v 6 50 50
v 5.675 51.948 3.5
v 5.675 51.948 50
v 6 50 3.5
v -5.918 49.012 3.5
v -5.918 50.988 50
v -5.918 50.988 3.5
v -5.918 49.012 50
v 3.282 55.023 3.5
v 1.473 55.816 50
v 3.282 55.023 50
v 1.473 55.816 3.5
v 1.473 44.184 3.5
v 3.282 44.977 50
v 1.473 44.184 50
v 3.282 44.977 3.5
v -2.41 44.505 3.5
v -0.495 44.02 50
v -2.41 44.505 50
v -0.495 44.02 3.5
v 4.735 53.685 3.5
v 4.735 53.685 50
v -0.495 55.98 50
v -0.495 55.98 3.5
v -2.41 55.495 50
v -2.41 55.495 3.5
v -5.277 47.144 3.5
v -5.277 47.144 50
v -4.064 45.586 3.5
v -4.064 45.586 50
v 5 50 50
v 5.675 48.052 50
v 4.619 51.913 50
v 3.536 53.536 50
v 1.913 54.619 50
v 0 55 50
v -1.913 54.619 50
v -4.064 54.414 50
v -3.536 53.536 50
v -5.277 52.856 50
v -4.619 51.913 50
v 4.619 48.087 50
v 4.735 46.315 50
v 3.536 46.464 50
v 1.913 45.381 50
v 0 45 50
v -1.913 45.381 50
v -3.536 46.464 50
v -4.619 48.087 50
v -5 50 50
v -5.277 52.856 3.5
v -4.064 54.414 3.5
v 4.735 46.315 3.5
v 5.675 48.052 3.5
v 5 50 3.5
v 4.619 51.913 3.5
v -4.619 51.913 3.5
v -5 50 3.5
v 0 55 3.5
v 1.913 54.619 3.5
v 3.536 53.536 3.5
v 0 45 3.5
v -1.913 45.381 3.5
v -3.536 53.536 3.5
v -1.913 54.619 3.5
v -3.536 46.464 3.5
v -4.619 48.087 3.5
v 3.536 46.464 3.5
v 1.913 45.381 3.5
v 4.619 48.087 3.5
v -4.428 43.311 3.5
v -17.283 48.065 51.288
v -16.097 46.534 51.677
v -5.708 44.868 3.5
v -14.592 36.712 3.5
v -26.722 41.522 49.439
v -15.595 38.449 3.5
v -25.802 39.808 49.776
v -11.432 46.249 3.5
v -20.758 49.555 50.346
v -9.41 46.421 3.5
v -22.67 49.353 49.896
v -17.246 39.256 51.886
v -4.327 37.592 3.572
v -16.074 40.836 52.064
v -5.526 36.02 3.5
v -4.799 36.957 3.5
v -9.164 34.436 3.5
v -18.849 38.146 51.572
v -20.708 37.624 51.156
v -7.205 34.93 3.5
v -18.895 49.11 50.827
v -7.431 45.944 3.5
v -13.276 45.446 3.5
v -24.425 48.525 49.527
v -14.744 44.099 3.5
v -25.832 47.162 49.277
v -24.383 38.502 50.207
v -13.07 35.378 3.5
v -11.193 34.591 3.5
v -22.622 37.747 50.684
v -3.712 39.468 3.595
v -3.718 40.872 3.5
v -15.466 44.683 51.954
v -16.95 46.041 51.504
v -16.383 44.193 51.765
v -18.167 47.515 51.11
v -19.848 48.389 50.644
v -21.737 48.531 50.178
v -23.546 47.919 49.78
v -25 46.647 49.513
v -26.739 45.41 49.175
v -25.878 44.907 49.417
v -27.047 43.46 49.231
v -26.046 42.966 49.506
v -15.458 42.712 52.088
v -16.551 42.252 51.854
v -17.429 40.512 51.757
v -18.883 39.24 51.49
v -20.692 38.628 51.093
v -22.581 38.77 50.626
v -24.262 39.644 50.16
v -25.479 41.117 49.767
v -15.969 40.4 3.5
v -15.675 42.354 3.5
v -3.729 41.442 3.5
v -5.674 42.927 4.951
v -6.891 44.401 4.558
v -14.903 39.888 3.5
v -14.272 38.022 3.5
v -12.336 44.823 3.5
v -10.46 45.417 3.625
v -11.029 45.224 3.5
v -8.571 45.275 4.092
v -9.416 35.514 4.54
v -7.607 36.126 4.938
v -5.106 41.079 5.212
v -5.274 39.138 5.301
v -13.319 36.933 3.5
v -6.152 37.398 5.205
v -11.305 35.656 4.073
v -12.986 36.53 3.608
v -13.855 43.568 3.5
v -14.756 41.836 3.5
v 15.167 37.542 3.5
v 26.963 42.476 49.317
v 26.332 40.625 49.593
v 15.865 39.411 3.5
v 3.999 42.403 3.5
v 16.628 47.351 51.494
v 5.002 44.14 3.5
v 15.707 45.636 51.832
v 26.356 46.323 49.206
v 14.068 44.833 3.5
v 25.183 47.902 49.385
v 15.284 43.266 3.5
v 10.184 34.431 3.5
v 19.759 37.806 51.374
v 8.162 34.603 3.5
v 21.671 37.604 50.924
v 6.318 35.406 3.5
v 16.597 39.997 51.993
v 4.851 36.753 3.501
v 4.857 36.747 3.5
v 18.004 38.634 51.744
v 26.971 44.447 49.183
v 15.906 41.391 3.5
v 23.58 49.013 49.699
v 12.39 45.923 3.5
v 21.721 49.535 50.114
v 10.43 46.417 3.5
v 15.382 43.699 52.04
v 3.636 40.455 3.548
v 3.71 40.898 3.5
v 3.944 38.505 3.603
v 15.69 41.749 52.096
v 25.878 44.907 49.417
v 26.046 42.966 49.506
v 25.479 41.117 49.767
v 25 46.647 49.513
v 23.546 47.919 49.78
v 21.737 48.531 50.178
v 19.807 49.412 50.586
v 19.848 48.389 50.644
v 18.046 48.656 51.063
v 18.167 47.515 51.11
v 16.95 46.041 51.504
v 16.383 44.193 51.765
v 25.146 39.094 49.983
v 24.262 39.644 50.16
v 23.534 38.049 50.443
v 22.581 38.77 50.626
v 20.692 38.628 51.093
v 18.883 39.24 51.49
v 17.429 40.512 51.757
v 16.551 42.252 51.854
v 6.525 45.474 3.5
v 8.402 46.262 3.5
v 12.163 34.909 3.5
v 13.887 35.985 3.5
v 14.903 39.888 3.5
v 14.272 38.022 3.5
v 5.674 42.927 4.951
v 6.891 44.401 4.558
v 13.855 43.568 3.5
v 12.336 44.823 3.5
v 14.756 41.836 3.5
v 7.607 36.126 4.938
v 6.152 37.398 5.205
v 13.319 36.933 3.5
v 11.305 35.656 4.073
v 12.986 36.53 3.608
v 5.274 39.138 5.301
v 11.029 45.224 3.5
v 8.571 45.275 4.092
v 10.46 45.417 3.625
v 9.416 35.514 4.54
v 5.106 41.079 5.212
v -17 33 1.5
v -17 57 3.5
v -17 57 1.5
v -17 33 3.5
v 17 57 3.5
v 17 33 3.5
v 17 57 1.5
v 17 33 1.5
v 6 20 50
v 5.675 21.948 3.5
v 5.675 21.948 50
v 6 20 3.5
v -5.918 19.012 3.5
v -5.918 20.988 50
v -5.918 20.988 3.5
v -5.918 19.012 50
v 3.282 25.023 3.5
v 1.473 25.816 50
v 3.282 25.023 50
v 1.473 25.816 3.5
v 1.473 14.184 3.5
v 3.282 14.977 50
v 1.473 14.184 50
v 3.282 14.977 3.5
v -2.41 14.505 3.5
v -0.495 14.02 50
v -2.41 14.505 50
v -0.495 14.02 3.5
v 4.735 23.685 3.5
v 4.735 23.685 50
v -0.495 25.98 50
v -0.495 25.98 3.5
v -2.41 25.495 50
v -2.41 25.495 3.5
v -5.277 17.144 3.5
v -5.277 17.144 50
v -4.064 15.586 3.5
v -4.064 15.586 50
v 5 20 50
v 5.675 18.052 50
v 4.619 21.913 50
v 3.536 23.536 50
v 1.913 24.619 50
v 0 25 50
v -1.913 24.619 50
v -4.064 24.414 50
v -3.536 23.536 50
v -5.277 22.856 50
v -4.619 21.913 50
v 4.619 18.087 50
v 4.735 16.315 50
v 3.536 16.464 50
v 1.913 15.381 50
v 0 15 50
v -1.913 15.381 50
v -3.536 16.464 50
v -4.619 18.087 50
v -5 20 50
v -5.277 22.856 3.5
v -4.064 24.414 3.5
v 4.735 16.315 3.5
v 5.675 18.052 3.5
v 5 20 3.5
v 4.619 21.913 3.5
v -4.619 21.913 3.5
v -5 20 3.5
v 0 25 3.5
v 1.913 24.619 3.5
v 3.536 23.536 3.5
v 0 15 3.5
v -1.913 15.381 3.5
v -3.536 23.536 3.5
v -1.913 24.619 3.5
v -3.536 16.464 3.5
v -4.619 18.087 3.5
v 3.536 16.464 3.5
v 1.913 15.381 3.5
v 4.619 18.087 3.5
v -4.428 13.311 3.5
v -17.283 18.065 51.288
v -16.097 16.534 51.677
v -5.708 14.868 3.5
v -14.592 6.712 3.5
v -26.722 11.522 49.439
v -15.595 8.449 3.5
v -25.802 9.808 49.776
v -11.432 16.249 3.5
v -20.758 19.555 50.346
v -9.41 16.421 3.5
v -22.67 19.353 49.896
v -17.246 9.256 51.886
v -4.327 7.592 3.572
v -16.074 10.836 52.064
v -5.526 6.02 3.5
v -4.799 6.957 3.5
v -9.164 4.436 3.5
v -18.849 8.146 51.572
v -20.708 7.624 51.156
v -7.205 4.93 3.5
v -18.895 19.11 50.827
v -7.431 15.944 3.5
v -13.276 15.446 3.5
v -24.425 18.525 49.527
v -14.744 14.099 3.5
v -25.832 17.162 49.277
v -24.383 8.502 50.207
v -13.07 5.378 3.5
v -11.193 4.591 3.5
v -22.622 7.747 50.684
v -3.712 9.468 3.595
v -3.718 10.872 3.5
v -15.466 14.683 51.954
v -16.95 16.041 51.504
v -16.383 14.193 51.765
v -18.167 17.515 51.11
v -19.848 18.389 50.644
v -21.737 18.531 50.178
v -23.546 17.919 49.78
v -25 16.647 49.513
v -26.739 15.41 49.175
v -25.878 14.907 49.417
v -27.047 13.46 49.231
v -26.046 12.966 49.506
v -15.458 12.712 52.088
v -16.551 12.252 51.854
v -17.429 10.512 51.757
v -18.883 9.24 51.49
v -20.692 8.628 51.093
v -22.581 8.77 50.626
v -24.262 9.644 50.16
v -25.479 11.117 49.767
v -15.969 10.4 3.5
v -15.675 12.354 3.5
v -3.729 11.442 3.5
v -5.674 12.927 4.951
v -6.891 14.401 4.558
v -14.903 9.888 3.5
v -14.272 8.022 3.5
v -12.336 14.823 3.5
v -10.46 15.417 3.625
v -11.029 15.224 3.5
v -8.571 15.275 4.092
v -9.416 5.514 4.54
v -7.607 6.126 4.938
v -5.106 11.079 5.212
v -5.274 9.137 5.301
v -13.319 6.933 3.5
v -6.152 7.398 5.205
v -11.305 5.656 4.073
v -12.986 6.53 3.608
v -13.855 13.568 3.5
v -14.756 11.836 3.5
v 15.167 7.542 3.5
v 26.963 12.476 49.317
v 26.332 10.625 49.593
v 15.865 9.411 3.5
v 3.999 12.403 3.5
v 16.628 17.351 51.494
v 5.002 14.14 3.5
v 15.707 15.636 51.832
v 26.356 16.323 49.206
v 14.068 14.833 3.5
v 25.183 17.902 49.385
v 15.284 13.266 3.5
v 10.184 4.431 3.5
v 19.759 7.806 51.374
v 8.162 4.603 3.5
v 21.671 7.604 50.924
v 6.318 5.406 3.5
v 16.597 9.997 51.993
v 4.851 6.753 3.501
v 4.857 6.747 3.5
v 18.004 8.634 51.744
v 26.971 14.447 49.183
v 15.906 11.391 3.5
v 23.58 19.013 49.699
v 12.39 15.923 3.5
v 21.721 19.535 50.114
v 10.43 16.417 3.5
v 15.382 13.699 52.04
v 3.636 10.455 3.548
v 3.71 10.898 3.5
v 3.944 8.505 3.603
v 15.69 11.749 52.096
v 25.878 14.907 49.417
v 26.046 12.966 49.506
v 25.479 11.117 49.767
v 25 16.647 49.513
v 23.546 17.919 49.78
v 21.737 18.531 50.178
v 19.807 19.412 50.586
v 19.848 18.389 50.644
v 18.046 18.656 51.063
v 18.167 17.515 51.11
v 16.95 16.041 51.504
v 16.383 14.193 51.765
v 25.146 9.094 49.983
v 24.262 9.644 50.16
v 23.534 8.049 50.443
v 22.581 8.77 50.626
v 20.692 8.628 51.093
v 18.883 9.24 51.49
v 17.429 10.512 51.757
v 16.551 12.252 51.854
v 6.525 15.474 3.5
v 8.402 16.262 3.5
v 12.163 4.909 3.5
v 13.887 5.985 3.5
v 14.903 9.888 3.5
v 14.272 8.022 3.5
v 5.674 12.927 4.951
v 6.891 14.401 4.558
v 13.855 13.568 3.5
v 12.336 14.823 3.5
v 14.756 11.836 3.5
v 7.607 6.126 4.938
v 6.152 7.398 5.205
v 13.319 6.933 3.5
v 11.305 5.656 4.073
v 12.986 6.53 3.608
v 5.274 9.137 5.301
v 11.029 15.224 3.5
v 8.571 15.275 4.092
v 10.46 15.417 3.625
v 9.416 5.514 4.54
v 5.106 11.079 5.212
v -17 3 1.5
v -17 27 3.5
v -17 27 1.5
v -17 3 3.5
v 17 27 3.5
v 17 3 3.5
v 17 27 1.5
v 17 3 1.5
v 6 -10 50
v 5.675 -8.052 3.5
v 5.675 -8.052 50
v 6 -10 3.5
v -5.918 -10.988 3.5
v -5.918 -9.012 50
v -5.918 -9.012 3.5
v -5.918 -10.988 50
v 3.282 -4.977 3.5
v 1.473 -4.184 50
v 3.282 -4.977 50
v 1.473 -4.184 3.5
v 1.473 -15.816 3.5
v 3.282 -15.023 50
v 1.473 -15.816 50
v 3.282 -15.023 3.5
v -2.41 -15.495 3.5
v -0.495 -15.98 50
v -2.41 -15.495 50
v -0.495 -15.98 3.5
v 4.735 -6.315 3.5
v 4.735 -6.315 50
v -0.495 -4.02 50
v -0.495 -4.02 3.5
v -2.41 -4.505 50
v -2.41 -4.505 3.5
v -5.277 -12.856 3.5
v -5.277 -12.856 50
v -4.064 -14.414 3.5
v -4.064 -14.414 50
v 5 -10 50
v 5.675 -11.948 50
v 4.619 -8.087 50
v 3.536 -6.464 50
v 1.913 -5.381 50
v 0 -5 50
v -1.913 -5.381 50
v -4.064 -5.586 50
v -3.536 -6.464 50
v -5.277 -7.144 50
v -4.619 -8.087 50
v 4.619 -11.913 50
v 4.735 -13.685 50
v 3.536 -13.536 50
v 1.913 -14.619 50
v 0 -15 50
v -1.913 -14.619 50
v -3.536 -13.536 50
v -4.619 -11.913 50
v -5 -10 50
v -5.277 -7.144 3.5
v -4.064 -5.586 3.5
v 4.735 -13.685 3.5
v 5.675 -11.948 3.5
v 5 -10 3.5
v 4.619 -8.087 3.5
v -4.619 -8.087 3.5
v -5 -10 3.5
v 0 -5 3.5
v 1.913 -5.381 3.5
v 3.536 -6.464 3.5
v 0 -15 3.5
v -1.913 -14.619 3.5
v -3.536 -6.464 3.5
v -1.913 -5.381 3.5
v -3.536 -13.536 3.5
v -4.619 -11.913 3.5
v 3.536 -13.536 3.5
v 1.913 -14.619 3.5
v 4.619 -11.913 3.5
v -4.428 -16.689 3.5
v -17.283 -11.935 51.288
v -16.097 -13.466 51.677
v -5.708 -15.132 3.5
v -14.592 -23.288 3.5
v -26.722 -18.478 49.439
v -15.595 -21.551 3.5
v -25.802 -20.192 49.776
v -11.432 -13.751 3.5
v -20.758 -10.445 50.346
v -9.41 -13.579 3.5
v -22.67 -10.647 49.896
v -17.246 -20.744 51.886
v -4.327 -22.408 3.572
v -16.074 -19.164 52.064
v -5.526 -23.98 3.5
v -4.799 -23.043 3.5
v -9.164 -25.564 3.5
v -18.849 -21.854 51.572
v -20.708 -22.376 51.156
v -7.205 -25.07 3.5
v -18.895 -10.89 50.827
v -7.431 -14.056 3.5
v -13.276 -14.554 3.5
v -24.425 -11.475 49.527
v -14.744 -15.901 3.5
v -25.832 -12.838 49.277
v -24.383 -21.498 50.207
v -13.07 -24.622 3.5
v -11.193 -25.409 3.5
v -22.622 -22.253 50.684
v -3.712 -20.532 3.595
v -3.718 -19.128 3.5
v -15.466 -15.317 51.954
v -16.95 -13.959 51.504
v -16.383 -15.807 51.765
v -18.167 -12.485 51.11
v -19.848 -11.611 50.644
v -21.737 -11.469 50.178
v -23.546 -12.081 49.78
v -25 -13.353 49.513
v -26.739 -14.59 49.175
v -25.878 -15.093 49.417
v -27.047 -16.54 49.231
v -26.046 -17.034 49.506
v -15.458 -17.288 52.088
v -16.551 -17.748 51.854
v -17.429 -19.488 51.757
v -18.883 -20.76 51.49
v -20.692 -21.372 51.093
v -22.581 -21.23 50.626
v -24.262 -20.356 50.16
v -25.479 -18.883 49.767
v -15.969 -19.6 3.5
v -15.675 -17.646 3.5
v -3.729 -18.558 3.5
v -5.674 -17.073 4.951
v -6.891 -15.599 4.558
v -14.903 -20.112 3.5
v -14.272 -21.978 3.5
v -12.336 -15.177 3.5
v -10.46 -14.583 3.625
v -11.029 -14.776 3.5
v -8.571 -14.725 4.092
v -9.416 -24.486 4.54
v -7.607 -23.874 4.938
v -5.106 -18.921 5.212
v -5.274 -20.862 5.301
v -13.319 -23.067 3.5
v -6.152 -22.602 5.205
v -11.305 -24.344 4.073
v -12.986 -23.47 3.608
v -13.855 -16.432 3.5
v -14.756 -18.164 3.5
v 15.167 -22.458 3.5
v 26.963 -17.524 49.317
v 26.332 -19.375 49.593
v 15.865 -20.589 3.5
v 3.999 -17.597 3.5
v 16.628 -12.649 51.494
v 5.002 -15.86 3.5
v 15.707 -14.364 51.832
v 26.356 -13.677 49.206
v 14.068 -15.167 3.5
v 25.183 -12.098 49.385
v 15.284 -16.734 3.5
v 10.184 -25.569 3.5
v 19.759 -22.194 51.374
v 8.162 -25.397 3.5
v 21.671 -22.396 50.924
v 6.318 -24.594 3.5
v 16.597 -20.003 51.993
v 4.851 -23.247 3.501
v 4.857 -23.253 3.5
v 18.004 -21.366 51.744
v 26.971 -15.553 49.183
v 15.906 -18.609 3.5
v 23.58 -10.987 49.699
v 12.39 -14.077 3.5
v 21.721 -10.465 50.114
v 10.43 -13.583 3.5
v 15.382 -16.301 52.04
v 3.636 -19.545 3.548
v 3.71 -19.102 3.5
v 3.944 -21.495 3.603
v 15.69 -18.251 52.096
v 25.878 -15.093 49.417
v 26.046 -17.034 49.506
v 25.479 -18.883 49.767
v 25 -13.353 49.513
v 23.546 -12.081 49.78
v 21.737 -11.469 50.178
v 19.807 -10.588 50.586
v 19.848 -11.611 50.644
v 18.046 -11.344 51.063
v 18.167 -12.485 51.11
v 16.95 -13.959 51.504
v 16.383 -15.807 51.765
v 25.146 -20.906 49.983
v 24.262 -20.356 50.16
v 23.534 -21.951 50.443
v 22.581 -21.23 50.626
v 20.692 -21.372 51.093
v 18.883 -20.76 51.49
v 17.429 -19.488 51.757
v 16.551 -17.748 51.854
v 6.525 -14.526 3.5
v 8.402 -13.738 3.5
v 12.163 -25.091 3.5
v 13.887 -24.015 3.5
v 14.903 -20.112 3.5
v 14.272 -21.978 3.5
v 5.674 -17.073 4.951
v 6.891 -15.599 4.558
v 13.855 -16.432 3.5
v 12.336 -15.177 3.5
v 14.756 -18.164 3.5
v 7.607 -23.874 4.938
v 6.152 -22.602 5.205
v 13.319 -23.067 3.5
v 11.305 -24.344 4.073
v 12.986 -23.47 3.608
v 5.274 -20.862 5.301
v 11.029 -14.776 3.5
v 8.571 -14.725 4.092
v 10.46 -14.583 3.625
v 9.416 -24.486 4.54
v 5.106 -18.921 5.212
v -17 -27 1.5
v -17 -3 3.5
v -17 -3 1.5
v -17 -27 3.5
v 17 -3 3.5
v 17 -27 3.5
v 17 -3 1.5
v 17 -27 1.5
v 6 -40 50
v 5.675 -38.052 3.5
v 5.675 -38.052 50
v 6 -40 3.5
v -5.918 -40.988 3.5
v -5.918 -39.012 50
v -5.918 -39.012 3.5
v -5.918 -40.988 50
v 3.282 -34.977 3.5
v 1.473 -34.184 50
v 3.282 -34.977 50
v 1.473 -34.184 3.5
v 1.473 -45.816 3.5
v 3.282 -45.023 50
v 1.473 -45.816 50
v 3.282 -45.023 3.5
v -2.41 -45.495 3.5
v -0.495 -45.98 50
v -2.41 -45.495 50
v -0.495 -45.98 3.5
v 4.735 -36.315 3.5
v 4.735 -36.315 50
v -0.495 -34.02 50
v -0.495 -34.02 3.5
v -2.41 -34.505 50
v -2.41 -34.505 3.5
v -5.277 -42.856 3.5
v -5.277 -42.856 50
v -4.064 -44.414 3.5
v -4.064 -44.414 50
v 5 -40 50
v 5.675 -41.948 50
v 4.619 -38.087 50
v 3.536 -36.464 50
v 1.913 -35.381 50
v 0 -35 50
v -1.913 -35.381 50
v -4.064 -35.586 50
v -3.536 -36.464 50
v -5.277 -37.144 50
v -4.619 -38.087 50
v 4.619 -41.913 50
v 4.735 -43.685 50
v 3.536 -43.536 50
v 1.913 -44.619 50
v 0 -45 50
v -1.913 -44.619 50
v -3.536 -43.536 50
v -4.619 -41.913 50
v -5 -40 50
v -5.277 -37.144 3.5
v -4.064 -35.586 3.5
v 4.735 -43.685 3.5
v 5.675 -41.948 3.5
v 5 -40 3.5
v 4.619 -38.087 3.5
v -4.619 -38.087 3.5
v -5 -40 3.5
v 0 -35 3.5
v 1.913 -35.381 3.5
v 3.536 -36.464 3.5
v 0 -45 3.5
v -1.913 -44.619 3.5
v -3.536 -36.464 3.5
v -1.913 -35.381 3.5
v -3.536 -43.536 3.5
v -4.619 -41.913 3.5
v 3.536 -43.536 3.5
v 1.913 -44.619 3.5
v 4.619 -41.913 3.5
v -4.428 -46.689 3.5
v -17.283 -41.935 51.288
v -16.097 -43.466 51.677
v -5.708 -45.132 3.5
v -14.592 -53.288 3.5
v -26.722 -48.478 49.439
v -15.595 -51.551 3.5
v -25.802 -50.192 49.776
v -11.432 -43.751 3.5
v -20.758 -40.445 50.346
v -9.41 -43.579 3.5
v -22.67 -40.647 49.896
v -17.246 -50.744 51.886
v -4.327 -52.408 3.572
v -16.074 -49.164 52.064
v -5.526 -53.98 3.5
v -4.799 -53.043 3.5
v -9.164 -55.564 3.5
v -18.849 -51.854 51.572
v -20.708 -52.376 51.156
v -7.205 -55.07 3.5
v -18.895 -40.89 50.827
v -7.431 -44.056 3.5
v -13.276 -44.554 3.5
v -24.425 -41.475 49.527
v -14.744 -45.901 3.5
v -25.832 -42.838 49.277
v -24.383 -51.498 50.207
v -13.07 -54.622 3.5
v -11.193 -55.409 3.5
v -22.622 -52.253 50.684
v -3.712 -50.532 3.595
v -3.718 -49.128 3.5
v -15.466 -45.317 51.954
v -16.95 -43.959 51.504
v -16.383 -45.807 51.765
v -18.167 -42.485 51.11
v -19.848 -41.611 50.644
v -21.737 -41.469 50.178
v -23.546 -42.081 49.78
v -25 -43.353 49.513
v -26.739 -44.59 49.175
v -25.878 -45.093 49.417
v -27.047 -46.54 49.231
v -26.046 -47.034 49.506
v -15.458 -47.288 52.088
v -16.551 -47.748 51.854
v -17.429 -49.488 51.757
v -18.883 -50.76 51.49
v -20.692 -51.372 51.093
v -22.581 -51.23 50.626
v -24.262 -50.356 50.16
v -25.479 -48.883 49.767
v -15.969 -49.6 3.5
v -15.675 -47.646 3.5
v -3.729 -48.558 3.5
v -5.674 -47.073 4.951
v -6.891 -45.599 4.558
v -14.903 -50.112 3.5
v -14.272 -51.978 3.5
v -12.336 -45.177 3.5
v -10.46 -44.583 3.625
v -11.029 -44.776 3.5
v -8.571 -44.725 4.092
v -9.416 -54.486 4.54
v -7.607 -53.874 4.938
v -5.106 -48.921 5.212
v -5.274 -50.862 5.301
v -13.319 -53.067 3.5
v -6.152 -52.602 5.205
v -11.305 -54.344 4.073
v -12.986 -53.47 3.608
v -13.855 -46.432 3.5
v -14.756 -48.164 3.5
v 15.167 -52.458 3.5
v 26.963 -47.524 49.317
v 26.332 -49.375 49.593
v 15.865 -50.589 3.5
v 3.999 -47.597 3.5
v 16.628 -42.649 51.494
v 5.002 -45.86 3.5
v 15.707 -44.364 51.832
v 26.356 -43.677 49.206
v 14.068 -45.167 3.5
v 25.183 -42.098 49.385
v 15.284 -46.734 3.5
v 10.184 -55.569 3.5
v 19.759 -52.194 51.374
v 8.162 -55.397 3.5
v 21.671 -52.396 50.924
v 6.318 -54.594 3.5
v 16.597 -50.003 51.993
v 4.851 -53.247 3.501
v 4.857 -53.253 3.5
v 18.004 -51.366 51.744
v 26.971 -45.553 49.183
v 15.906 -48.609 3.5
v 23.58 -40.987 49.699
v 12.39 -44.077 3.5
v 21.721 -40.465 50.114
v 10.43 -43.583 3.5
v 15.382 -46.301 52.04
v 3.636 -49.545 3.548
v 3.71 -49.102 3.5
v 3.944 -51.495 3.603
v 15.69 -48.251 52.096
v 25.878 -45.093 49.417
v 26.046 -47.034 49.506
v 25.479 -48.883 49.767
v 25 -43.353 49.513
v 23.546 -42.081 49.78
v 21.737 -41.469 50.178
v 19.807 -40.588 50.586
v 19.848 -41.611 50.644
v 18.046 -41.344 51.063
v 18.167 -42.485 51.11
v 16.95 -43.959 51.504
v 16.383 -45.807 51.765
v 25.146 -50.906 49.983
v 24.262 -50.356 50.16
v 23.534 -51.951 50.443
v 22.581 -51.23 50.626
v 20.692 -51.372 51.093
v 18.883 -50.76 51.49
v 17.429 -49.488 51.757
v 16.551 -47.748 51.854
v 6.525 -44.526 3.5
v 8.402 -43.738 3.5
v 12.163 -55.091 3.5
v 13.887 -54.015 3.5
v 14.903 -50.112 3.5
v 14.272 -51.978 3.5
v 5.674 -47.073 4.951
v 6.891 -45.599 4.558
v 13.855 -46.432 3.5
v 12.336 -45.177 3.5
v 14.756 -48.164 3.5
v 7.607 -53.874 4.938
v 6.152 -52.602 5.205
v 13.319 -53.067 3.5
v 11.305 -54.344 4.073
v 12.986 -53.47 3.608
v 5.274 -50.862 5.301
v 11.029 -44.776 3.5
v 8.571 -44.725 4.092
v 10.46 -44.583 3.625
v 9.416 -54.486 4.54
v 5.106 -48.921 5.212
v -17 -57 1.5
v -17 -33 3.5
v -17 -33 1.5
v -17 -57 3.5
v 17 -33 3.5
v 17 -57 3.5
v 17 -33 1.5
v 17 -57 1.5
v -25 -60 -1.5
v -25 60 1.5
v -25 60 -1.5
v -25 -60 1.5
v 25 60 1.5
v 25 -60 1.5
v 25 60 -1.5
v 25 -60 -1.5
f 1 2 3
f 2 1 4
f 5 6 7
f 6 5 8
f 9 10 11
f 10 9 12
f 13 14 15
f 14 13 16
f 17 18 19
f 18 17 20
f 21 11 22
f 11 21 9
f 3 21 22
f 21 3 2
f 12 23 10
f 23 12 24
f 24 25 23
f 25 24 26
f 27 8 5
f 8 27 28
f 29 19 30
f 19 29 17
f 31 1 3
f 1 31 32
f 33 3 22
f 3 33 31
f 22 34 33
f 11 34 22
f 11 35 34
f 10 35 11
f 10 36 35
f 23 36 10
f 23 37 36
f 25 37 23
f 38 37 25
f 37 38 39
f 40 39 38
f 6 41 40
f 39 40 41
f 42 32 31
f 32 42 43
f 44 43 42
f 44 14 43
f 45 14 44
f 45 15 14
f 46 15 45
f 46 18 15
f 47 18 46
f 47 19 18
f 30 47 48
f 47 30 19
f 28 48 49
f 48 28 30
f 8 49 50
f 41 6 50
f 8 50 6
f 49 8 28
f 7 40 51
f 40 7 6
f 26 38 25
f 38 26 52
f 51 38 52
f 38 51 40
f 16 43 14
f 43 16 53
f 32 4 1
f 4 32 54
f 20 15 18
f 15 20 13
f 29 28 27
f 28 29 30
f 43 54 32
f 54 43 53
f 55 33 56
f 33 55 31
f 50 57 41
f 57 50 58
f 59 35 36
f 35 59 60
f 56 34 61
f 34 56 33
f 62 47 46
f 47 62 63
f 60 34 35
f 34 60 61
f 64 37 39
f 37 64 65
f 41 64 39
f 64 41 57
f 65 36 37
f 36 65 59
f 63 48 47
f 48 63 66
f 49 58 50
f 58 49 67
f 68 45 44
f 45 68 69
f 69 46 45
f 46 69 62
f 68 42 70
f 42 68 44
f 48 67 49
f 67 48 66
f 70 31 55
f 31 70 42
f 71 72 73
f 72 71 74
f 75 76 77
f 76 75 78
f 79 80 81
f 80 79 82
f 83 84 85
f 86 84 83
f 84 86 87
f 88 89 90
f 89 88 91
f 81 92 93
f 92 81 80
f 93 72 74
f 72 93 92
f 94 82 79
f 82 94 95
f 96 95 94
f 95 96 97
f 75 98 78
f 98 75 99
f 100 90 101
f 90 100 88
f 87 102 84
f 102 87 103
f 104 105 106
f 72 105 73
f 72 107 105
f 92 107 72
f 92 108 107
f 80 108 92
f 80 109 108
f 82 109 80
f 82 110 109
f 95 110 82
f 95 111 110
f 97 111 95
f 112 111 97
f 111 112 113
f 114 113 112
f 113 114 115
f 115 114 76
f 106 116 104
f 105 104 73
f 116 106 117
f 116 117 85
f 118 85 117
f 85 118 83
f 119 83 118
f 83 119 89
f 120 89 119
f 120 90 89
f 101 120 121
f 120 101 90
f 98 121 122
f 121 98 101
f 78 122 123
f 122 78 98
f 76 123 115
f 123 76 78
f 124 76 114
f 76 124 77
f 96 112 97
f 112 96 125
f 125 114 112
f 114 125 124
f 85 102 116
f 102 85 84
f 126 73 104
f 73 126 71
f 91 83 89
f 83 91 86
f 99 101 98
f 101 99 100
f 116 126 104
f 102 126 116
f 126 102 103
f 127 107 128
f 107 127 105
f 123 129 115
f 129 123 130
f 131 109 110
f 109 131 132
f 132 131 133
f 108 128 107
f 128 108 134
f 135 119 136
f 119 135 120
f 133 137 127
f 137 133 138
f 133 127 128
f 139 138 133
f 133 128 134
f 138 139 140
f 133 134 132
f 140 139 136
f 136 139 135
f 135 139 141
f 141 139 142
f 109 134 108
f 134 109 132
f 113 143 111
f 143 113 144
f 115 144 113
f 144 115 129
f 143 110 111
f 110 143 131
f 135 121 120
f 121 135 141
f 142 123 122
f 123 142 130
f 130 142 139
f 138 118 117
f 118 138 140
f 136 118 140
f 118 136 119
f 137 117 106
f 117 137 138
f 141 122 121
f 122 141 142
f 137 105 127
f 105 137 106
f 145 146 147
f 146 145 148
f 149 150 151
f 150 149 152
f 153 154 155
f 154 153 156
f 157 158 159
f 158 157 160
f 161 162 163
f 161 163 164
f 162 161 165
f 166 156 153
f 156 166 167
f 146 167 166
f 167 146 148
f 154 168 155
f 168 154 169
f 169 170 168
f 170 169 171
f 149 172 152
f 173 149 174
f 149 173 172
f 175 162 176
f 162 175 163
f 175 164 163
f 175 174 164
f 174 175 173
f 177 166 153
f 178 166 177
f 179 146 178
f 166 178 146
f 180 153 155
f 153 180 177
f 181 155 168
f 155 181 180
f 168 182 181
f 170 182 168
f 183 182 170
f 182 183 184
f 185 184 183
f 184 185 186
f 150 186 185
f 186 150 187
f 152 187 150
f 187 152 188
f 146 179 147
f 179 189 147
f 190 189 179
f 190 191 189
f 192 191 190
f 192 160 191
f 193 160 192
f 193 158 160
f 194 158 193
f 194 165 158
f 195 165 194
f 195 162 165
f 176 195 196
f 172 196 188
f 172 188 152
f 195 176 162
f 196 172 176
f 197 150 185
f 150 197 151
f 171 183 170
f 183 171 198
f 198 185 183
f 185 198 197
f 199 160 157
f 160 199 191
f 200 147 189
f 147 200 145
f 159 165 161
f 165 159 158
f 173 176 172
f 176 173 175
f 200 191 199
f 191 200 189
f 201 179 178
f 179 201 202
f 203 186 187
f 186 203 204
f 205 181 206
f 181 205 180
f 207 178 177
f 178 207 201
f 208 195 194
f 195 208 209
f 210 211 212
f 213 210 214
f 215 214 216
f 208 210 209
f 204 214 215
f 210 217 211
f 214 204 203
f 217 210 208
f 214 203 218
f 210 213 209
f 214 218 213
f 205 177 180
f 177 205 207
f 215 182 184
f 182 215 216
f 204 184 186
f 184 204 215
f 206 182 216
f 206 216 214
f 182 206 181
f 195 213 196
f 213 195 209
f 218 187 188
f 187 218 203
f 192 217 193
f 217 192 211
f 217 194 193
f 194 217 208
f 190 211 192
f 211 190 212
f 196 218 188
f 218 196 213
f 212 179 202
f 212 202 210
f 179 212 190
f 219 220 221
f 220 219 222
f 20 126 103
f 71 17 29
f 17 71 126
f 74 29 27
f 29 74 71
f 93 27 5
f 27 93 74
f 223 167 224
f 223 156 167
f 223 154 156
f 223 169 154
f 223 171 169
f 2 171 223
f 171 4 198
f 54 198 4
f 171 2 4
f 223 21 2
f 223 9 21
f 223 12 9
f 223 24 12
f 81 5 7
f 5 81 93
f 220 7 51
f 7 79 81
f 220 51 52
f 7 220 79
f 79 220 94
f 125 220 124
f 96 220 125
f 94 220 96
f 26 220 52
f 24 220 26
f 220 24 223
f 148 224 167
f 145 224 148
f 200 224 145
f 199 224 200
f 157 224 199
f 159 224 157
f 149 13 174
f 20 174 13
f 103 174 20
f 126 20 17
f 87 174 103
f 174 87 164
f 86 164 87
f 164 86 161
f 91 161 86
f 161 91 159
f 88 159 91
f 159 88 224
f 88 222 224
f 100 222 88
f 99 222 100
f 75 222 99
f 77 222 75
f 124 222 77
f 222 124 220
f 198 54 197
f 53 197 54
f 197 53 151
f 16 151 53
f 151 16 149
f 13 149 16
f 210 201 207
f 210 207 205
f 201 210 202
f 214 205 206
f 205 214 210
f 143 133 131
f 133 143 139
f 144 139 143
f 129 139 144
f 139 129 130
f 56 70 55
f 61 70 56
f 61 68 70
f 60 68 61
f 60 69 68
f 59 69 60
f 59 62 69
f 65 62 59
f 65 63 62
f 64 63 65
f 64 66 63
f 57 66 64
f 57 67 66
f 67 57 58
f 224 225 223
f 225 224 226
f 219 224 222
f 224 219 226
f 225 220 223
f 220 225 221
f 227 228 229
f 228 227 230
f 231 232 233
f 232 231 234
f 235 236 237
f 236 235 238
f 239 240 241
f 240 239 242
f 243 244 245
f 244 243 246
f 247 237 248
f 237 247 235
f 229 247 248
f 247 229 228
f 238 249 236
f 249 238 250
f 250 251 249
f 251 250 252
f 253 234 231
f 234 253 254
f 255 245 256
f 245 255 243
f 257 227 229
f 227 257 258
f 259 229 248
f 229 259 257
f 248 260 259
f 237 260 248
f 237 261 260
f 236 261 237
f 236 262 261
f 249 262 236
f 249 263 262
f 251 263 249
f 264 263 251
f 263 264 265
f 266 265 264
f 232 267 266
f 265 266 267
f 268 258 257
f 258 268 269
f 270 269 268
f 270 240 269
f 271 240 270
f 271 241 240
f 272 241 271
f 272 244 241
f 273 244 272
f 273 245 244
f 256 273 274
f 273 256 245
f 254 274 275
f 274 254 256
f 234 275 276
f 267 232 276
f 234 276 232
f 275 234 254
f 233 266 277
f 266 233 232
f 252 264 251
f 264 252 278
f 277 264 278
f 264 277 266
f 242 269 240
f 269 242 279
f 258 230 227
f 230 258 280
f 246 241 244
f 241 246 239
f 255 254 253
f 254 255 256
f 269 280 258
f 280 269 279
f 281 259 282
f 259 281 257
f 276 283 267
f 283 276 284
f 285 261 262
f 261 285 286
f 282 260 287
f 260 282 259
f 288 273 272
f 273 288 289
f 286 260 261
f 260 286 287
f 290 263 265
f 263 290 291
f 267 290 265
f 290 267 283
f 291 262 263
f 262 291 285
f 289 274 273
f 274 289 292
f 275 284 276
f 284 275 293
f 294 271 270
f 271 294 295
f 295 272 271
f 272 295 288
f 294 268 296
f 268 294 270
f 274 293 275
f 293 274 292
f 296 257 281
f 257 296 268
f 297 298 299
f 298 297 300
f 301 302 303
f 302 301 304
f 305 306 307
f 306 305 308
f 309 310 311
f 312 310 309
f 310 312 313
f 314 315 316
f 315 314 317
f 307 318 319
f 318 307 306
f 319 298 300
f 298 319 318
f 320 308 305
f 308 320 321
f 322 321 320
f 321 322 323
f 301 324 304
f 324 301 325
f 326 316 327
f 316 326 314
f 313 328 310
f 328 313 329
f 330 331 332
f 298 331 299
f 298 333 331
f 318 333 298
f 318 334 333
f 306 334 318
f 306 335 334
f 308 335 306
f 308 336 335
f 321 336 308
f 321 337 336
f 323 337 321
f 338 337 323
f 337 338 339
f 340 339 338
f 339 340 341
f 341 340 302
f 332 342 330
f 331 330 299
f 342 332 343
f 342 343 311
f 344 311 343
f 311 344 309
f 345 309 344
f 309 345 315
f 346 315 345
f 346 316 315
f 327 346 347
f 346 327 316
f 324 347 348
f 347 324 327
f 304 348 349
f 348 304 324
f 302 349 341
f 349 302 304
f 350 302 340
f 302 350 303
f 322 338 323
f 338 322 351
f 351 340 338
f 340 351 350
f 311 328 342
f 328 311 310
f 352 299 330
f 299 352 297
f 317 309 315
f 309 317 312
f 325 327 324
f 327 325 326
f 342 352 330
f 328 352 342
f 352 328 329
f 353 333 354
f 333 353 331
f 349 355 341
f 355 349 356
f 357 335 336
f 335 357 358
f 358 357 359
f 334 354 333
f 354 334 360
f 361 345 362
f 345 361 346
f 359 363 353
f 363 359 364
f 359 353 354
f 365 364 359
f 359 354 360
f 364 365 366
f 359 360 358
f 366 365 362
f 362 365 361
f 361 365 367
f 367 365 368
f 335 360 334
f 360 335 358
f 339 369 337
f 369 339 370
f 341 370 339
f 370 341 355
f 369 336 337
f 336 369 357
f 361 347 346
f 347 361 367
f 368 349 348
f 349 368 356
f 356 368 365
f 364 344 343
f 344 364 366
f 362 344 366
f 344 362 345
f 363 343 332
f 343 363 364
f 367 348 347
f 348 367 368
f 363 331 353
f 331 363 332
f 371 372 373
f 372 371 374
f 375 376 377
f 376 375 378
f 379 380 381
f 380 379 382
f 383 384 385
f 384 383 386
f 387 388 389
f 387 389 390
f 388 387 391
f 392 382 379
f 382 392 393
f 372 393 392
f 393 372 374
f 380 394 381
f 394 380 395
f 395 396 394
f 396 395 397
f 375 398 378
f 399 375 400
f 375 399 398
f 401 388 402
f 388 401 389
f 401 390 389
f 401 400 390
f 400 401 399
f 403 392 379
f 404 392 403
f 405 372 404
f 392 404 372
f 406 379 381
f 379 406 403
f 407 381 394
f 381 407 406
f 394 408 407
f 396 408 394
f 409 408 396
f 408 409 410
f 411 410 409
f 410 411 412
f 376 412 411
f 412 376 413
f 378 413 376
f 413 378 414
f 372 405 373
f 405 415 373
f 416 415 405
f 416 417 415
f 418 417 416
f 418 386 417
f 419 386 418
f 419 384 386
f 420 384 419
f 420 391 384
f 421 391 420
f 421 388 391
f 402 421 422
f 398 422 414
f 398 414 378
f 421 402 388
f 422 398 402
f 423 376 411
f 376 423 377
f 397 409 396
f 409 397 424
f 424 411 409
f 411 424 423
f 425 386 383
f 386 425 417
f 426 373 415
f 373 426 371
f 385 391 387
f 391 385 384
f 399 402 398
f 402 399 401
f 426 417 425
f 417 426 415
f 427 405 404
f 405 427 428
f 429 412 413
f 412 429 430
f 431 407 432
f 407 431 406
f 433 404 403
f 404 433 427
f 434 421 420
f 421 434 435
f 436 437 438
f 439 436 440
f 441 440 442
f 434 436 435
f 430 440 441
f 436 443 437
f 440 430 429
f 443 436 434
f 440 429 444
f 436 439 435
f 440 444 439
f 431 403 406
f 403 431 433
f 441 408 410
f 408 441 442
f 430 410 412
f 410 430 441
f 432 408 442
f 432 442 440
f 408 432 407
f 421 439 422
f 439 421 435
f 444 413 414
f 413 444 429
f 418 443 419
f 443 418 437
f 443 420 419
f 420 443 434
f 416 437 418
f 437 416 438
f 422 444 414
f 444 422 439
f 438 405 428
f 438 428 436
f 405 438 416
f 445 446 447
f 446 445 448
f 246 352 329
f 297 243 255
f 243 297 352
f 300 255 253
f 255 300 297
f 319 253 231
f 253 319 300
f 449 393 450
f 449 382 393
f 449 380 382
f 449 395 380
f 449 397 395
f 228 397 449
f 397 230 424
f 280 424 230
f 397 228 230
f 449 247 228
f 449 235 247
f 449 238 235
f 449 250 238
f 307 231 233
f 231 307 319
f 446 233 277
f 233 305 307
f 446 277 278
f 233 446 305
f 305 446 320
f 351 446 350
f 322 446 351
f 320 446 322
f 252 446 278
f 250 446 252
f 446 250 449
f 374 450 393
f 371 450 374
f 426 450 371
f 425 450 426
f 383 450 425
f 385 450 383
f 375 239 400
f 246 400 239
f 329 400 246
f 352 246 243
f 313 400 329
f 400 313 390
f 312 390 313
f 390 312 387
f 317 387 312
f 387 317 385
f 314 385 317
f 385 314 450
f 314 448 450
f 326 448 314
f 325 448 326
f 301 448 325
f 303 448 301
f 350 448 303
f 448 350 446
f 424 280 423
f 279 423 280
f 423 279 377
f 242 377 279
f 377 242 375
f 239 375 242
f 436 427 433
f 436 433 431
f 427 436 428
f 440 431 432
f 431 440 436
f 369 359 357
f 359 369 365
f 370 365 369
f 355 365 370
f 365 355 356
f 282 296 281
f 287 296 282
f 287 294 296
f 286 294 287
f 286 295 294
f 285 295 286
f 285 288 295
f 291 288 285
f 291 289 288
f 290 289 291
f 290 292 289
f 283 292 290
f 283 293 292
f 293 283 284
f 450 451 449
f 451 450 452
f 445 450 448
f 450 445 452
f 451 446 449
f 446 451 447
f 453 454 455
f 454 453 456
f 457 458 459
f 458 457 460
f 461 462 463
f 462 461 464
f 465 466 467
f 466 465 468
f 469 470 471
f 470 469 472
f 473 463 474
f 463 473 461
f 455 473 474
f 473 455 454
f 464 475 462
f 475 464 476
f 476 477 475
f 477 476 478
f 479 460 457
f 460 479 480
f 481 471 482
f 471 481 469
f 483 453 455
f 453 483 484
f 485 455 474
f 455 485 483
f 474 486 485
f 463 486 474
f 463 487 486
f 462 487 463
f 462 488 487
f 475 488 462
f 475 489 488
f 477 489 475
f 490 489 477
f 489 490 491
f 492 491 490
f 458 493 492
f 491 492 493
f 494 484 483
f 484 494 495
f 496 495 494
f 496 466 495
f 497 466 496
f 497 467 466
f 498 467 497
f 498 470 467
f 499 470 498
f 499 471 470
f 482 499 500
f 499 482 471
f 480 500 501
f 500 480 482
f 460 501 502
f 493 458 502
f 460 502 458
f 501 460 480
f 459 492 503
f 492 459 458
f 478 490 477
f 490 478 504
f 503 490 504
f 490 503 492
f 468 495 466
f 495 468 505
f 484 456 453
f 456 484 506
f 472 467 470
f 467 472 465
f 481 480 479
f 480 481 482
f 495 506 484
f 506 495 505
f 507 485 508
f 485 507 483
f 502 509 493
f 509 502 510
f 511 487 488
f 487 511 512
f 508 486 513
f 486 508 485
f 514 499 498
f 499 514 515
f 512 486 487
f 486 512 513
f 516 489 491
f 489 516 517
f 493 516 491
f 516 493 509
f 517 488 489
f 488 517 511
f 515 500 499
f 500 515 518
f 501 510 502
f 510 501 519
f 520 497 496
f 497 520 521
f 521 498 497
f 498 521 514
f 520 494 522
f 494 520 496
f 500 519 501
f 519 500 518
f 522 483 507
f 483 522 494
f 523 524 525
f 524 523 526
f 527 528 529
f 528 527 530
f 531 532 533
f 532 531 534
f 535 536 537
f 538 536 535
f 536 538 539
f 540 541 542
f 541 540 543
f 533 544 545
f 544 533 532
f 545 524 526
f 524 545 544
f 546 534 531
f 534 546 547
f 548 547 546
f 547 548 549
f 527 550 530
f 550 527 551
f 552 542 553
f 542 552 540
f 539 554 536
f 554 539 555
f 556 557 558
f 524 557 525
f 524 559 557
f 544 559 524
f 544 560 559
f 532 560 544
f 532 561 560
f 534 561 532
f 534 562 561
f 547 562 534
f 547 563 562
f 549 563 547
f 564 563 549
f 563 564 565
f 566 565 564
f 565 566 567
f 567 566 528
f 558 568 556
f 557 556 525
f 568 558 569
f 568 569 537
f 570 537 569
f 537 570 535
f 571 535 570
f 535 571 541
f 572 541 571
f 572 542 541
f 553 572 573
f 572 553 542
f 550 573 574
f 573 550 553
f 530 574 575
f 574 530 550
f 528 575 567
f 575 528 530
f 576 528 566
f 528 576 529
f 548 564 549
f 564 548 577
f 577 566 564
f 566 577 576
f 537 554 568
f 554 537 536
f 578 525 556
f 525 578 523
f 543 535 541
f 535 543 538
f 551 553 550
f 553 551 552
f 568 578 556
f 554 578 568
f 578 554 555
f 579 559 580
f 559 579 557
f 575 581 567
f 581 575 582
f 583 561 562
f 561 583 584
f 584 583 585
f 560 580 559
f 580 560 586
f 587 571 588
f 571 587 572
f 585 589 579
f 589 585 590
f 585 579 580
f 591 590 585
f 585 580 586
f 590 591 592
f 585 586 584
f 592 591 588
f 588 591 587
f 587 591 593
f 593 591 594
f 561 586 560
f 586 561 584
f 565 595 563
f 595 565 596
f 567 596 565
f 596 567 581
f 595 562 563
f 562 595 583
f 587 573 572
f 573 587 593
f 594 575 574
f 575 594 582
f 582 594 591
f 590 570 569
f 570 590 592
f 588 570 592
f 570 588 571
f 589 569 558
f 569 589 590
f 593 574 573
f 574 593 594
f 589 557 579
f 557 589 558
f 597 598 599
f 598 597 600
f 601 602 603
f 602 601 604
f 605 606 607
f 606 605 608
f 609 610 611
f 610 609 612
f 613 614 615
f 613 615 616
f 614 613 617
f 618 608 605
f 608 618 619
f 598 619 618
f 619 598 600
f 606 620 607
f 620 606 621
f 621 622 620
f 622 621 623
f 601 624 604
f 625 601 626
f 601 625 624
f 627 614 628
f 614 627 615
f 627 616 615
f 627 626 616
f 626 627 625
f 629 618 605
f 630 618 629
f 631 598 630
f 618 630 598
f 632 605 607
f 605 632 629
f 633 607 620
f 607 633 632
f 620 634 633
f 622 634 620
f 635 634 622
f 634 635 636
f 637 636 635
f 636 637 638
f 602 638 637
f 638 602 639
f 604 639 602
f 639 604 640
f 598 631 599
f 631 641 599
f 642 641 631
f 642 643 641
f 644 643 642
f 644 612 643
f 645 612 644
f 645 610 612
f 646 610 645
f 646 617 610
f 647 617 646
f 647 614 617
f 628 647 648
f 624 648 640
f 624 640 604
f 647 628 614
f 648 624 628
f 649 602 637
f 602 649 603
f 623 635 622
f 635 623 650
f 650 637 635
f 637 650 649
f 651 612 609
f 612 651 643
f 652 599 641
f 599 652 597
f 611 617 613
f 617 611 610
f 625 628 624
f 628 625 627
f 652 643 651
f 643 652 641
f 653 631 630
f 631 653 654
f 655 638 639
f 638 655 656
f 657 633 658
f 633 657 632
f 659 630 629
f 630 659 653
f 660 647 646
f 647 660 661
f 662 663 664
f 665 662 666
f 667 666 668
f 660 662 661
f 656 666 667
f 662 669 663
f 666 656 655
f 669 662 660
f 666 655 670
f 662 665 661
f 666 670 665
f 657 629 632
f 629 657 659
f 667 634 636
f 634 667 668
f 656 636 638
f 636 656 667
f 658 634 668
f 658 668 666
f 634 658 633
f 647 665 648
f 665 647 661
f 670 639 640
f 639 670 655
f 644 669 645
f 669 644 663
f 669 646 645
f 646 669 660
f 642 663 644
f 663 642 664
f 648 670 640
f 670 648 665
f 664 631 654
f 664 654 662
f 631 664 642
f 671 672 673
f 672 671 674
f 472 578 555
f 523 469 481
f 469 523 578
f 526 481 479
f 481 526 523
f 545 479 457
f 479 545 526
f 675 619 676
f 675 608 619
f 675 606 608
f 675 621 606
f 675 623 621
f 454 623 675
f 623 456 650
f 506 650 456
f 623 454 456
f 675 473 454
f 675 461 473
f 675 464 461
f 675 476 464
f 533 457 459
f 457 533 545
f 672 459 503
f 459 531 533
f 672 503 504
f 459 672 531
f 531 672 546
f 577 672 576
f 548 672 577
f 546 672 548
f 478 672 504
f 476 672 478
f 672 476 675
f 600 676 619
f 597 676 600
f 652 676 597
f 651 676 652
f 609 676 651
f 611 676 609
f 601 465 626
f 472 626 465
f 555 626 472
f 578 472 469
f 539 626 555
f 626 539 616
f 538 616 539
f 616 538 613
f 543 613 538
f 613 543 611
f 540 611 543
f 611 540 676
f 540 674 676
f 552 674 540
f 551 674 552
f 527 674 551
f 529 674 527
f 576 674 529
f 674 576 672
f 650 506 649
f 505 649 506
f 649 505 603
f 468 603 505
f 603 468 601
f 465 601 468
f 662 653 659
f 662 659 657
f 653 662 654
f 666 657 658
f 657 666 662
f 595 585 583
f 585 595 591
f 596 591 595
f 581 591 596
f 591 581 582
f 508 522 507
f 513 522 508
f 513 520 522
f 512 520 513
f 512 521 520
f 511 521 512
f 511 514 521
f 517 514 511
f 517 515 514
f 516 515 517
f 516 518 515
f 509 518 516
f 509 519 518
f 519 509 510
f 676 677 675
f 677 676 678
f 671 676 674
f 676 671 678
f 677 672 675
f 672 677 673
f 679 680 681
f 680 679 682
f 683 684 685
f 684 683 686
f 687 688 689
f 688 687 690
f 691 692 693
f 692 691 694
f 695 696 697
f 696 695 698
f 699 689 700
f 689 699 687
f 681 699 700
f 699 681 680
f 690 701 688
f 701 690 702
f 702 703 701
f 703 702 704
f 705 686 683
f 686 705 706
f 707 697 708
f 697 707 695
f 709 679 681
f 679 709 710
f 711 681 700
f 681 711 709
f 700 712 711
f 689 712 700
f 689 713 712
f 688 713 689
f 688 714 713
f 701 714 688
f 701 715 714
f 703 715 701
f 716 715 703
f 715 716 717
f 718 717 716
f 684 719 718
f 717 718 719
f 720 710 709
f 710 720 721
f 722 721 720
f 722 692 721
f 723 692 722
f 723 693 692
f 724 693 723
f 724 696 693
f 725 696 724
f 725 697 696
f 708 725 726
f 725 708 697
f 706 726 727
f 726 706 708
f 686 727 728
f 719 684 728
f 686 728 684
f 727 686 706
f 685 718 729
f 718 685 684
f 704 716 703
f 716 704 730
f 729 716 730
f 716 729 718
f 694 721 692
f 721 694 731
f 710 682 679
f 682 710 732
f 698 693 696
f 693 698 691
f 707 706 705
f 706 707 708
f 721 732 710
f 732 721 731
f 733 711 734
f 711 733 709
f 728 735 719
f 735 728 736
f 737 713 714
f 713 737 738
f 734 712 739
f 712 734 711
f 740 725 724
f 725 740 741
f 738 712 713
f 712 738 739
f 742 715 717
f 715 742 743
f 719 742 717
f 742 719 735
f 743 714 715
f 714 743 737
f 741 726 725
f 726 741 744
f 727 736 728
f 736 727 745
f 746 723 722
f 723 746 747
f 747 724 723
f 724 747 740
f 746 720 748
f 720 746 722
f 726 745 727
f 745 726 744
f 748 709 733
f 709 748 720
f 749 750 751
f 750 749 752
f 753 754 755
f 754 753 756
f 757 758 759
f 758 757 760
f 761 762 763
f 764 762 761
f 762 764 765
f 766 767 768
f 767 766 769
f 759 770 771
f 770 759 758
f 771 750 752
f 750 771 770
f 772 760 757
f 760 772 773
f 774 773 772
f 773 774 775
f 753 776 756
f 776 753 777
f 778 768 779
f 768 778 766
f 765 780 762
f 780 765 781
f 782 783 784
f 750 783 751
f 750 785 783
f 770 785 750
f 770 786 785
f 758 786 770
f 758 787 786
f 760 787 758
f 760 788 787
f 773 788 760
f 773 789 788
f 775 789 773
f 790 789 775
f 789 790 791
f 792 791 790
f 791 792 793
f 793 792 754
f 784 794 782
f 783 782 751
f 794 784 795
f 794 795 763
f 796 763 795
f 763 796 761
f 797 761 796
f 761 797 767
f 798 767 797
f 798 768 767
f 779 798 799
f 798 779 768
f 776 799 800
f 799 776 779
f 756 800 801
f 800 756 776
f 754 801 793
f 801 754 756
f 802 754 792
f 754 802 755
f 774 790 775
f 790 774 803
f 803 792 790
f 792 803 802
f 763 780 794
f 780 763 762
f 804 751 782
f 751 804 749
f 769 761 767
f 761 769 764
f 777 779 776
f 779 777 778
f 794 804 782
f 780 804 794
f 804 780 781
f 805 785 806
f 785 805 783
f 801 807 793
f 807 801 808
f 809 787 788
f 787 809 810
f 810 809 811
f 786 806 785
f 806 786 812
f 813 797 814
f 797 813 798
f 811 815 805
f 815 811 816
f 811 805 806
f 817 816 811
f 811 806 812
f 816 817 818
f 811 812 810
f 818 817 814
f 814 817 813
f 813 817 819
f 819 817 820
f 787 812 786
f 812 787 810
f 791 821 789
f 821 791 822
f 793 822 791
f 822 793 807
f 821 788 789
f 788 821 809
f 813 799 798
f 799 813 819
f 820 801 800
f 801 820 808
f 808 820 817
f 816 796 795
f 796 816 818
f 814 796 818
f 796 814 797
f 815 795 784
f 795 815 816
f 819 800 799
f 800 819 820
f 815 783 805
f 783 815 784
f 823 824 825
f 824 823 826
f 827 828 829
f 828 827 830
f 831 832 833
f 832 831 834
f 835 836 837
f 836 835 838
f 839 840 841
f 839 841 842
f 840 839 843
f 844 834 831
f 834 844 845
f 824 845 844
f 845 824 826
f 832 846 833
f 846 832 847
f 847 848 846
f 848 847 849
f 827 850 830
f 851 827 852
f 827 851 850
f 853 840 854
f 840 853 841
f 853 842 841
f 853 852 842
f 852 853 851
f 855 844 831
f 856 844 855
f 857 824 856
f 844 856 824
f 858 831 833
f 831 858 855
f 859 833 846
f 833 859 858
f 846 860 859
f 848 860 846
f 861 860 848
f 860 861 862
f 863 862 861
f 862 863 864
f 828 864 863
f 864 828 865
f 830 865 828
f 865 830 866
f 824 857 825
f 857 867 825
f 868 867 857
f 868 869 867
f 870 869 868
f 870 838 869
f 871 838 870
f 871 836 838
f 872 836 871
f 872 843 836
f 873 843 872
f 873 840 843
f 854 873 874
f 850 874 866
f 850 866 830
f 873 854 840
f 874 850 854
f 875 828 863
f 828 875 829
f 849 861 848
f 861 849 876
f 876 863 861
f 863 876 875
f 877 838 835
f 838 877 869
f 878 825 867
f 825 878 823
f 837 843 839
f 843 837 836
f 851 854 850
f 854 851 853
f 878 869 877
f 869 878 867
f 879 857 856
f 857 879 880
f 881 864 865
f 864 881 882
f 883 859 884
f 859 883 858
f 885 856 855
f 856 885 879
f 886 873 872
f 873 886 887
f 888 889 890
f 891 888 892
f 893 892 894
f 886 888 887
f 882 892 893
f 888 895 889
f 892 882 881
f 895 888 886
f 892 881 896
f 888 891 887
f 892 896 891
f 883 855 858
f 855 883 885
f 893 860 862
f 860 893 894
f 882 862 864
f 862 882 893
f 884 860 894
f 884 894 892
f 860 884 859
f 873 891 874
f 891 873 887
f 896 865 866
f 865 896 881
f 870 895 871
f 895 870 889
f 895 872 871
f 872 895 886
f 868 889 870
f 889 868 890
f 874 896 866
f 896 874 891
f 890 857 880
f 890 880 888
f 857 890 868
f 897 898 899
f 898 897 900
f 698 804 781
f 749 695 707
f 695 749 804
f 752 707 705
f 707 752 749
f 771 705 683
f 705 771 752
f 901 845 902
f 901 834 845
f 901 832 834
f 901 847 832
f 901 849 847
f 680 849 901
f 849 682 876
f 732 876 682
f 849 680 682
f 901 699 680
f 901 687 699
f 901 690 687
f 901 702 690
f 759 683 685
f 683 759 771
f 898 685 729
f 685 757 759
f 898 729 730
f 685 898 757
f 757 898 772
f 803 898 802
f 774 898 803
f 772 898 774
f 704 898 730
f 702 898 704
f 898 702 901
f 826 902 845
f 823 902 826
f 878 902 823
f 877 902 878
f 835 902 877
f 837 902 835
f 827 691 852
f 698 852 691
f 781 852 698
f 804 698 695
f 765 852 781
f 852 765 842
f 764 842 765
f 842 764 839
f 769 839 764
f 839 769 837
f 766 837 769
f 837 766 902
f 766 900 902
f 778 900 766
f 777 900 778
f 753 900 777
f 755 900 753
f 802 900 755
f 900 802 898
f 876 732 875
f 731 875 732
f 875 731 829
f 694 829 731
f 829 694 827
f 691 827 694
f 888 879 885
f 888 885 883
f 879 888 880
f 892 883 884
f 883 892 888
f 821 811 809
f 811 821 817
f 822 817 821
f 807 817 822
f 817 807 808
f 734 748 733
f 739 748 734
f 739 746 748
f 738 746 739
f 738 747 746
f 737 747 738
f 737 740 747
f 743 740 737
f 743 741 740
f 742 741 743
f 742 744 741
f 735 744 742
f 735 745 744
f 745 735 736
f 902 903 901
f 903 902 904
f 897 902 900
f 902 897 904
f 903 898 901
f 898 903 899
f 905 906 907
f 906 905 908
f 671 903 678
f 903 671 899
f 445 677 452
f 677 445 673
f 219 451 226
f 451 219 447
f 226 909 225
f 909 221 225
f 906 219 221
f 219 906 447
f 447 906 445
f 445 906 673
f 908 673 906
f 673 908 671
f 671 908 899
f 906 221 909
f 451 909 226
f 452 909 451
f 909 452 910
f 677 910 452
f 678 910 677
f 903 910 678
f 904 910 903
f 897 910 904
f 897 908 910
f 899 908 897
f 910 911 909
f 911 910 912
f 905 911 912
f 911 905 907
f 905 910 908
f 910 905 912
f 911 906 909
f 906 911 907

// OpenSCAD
union(){
    cube([50,120,3],center= true);
    translate([0,45,0])
    holder_set();
    translate([0,15,0])
    holder_set();
    translate([0,-15,0])
    holder_set();
    translate([0,-45,0])
    holder_set();
}



module holder(){
    difference(){
        cylinder(h=50,r=6);
        translate([0,0,2])
        cylinder(h=50,r=5);
    }
};

module holder_set(){
    union(){
        translate([0,5,0])
        holder();
        rotate([-10,-10,30])
        translate([-10,0,4])
        holder();
        rotate([-10,10,-30])
        translate([10,0,4])
        holder();
        translate([0,0,2])
        cube([34,24,3],center= true);
    }
}
